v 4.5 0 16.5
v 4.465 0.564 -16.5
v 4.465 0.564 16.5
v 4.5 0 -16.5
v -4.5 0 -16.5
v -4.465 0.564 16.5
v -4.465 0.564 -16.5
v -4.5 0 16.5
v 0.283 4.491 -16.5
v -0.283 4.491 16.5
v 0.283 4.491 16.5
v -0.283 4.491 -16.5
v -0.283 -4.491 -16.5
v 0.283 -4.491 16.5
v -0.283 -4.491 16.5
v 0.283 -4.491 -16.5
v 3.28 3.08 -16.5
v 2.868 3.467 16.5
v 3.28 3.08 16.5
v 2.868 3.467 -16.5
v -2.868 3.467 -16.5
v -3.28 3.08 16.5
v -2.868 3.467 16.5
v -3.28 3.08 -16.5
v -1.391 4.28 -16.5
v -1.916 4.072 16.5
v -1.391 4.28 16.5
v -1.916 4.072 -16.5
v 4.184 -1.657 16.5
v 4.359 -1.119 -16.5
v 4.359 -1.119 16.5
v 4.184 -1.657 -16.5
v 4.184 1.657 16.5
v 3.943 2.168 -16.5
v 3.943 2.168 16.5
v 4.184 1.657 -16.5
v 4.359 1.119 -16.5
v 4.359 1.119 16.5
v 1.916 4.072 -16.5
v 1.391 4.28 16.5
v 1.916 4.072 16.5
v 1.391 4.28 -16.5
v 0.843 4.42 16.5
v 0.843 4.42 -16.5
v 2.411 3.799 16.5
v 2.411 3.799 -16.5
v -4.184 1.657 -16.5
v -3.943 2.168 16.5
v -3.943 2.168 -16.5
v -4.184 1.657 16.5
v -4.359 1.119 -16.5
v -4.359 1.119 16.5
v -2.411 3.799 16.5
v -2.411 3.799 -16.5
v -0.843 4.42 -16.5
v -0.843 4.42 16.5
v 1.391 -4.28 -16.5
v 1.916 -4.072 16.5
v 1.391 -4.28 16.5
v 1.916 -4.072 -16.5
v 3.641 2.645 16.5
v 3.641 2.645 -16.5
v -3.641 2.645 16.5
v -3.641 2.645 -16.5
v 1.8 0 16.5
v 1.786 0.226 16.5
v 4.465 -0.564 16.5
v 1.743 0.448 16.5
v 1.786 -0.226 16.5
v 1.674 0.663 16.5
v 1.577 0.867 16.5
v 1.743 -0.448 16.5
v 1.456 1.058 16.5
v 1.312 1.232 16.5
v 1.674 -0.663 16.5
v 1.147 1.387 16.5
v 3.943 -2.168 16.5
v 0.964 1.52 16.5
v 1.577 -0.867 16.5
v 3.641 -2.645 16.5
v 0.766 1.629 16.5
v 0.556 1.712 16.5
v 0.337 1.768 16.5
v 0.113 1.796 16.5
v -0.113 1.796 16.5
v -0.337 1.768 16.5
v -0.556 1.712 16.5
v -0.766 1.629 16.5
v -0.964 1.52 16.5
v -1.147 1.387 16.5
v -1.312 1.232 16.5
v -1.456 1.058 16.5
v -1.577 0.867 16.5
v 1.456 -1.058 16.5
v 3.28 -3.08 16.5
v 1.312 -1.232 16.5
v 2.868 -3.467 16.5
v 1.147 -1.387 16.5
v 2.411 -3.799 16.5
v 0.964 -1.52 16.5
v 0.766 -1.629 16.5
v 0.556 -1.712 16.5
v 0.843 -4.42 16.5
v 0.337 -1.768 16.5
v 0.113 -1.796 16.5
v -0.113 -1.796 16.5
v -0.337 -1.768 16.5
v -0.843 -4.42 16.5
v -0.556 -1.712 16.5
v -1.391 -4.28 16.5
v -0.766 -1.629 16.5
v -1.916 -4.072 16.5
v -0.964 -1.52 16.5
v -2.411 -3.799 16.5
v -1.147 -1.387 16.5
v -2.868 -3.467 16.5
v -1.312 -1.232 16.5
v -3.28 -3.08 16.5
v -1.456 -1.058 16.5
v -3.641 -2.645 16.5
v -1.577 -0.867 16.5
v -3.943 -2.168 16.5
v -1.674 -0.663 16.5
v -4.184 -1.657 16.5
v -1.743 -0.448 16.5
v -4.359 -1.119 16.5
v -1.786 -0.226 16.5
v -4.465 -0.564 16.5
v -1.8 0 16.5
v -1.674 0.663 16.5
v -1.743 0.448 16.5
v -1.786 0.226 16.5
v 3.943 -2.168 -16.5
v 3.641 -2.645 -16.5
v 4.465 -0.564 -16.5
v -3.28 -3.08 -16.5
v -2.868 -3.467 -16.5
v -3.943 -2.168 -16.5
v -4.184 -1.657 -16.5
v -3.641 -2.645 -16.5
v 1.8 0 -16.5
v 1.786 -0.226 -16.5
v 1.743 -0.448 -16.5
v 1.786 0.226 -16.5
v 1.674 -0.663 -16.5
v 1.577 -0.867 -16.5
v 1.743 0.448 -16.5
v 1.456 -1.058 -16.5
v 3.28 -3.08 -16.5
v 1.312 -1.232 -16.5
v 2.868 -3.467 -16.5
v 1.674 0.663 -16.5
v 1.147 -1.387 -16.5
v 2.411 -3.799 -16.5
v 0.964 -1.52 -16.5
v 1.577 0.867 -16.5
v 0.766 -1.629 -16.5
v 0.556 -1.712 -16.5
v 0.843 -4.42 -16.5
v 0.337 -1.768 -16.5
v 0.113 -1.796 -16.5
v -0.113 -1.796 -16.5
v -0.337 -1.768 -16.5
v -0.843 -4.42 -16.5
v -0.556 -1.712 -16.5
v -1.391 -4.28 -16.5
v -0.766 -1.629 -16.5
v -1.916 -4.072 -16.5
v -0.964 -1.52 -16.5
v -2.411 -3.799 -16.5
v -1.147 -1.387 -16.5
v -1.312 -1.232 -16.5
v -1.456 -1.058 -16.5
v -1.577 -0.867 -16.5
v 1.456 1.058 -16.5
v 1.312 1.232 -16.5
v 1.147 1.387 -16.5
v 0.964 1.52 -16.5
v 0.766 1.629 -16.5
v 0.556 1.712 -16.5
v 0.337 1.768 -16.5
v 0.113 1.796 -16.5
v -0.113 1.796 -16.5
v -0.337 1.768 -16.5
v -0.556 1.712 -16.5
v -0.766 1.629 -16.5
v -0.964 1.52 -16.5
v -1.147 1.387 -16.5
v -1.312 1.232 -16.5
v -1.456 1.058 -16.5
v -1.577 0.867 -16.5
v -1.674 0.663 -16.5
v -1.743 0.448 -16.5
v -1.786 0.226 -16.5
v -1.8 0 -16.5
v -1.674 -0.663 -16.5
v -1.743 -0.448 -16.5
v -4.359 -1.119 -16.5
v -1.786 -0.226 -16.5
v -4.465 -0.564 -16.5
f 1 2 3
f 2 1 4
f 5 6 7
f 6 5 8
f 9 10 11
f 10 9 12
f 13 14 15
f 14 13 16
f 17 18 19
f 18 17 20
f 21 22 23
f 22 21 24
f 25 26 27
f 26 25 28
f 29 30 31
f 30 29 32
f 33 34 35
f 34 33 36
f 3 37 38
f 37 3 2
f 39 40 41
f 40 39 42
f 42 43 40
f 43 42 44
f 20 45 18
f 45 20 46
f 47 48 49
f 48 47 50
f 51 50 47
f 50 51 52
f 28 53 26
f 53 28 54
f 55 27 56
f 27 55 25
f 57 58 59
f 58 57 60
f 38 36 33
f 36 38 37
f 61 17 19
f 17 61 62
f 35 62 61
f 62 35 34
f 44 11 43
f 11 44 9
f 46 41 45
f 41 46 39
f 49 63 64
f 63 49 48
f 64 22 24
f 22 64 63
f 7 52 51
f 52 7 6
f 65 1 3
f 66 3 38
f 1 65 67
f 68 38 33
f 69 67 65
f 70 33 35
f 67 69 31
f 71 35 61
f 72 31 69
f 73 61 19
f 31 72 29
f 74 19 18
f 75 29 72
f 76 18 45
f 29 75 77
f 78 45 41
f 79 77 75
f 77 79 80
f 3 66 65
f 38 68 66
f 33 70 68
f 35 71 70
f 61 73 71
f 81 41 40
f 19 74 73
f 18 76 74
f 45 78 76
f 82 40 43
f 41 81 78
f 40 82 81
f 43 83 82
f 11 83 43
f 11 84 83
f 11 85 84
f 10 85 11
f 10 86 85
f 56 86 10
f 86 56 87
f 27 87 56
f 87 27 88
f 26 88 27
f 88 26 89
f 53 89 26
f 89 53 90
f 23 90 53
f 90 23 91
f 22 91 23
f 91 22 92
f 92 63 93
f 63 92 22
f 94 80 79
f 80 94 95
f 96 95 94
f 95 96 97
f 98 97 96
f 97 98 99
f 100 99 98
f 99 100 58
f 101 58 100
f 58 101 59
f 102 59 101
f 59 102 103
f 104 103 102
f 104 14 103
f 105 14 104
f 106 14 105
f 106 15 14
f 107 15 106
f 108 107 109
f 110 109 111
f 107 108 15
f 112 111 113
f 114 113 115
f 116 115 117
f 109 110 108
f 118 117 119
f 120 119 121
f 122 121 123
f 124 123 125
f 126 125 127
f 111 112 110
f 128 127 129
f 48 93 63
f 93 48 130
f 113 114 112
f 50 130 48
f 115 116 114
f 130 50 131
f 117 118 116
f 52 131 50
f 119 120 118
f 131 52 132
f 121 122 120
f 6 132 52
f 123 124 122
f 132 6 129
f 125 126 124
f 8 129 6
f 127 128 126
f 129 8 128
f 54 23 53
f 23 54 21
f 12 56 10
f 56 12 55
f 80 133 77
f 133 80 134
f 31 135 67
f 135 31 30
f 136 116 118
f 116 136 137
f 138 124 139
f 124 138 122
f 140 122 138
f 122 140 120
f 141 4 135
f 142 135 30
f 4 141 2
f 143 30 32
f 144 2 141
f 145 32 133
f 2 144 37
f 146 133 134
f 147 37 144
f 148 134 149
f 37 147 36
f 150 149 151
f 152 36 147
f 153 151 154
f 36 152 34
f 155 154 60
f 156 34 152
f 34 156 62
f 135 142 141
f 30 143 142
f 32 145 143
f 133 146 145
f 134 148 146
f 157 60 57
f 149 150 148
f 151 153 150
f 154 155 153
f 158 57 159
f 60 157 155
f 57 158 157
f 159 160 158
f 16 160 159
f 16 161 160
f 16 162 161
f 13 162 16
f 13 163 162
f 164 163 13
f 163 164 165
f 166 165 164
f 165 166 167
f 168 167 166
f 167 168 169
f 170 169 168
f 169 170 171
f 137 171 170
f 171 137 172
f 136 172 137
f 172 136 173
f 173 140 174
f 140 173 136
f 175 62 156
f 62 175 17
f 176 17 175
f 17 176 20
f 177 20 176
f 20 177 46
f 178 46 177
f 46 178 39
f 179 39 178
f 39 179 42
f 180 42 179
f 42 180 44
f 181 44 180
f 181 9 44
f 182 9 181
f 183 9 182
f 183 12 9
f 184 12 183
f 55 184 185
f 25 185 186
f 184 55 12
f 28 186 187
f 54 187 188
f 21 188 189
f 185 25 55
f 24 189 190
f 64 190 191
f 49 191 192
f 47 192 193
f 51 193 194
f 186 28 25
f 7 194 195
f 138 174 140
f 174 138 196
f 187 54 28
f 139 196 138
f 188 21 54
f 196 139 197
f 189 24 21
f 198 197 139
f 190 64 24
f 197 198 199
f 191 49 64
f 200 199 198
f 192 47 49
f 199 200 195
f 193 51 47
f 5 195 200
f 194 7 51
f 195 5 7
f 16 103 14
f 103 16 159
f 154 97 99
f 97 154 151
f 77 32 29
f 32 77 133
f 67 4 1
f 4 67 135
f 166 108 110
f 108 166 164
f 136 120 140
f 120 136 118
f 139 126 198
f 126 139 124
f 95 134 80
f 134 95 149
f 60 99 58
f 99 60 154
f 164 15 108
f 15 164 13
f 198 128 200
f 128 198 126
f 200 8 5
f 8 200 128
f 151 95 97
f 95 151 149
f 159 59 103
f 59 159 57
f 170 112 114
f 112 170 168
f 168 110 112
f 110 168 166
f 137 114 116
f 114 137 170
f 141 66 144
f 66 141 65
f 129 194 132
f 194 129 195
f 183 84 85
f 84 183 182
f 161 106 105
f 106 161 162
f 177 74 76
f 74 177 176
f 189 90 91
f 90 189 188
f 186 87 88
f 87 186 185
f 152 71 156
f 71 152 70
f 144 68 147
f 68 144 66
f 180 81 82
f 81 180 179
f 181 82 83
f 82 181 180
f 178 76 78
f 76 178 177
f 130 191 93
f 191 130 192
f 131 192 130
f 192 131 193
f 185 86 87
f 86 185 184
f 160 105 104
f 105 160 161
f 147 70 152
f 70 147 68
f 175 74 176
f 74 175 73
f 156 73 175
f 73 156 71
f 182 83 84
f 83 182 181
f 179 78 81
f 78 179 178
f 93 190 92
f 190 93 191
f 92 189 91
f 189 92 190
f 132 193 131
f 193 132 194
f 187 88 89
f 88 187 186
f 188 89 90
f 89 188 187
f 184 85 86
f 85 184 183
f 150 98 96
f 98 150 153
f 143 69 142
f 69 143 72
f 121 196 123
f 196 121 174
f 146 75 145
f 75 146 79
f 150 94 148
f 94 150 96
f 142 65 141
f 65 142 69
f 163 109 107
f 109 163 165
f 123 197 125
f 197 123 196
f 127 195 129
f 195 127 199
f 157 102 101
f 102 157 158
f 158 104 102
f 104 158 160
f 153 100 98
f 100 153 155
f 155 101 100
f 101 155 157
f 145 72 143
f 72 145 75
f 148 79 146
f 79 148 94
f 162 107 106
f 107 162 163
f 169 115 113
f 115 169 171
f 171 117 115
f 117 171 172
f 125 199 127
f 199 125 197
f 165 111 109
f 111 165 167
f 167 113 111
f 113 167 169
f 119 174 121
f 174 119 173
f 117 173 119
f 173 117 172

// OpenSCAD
$fn = 50;


difference() {
	union() {
		translate(v = [0, 0, -16.5000000000]) {
			cylinder(h = 33, r = 4.5000000000);
		}
	}
	union() {
		translate(v = [0, 0, -100.0000000000]) {
			cylinder(h = 200, r = 1.8000000000);
		}
	}
}
